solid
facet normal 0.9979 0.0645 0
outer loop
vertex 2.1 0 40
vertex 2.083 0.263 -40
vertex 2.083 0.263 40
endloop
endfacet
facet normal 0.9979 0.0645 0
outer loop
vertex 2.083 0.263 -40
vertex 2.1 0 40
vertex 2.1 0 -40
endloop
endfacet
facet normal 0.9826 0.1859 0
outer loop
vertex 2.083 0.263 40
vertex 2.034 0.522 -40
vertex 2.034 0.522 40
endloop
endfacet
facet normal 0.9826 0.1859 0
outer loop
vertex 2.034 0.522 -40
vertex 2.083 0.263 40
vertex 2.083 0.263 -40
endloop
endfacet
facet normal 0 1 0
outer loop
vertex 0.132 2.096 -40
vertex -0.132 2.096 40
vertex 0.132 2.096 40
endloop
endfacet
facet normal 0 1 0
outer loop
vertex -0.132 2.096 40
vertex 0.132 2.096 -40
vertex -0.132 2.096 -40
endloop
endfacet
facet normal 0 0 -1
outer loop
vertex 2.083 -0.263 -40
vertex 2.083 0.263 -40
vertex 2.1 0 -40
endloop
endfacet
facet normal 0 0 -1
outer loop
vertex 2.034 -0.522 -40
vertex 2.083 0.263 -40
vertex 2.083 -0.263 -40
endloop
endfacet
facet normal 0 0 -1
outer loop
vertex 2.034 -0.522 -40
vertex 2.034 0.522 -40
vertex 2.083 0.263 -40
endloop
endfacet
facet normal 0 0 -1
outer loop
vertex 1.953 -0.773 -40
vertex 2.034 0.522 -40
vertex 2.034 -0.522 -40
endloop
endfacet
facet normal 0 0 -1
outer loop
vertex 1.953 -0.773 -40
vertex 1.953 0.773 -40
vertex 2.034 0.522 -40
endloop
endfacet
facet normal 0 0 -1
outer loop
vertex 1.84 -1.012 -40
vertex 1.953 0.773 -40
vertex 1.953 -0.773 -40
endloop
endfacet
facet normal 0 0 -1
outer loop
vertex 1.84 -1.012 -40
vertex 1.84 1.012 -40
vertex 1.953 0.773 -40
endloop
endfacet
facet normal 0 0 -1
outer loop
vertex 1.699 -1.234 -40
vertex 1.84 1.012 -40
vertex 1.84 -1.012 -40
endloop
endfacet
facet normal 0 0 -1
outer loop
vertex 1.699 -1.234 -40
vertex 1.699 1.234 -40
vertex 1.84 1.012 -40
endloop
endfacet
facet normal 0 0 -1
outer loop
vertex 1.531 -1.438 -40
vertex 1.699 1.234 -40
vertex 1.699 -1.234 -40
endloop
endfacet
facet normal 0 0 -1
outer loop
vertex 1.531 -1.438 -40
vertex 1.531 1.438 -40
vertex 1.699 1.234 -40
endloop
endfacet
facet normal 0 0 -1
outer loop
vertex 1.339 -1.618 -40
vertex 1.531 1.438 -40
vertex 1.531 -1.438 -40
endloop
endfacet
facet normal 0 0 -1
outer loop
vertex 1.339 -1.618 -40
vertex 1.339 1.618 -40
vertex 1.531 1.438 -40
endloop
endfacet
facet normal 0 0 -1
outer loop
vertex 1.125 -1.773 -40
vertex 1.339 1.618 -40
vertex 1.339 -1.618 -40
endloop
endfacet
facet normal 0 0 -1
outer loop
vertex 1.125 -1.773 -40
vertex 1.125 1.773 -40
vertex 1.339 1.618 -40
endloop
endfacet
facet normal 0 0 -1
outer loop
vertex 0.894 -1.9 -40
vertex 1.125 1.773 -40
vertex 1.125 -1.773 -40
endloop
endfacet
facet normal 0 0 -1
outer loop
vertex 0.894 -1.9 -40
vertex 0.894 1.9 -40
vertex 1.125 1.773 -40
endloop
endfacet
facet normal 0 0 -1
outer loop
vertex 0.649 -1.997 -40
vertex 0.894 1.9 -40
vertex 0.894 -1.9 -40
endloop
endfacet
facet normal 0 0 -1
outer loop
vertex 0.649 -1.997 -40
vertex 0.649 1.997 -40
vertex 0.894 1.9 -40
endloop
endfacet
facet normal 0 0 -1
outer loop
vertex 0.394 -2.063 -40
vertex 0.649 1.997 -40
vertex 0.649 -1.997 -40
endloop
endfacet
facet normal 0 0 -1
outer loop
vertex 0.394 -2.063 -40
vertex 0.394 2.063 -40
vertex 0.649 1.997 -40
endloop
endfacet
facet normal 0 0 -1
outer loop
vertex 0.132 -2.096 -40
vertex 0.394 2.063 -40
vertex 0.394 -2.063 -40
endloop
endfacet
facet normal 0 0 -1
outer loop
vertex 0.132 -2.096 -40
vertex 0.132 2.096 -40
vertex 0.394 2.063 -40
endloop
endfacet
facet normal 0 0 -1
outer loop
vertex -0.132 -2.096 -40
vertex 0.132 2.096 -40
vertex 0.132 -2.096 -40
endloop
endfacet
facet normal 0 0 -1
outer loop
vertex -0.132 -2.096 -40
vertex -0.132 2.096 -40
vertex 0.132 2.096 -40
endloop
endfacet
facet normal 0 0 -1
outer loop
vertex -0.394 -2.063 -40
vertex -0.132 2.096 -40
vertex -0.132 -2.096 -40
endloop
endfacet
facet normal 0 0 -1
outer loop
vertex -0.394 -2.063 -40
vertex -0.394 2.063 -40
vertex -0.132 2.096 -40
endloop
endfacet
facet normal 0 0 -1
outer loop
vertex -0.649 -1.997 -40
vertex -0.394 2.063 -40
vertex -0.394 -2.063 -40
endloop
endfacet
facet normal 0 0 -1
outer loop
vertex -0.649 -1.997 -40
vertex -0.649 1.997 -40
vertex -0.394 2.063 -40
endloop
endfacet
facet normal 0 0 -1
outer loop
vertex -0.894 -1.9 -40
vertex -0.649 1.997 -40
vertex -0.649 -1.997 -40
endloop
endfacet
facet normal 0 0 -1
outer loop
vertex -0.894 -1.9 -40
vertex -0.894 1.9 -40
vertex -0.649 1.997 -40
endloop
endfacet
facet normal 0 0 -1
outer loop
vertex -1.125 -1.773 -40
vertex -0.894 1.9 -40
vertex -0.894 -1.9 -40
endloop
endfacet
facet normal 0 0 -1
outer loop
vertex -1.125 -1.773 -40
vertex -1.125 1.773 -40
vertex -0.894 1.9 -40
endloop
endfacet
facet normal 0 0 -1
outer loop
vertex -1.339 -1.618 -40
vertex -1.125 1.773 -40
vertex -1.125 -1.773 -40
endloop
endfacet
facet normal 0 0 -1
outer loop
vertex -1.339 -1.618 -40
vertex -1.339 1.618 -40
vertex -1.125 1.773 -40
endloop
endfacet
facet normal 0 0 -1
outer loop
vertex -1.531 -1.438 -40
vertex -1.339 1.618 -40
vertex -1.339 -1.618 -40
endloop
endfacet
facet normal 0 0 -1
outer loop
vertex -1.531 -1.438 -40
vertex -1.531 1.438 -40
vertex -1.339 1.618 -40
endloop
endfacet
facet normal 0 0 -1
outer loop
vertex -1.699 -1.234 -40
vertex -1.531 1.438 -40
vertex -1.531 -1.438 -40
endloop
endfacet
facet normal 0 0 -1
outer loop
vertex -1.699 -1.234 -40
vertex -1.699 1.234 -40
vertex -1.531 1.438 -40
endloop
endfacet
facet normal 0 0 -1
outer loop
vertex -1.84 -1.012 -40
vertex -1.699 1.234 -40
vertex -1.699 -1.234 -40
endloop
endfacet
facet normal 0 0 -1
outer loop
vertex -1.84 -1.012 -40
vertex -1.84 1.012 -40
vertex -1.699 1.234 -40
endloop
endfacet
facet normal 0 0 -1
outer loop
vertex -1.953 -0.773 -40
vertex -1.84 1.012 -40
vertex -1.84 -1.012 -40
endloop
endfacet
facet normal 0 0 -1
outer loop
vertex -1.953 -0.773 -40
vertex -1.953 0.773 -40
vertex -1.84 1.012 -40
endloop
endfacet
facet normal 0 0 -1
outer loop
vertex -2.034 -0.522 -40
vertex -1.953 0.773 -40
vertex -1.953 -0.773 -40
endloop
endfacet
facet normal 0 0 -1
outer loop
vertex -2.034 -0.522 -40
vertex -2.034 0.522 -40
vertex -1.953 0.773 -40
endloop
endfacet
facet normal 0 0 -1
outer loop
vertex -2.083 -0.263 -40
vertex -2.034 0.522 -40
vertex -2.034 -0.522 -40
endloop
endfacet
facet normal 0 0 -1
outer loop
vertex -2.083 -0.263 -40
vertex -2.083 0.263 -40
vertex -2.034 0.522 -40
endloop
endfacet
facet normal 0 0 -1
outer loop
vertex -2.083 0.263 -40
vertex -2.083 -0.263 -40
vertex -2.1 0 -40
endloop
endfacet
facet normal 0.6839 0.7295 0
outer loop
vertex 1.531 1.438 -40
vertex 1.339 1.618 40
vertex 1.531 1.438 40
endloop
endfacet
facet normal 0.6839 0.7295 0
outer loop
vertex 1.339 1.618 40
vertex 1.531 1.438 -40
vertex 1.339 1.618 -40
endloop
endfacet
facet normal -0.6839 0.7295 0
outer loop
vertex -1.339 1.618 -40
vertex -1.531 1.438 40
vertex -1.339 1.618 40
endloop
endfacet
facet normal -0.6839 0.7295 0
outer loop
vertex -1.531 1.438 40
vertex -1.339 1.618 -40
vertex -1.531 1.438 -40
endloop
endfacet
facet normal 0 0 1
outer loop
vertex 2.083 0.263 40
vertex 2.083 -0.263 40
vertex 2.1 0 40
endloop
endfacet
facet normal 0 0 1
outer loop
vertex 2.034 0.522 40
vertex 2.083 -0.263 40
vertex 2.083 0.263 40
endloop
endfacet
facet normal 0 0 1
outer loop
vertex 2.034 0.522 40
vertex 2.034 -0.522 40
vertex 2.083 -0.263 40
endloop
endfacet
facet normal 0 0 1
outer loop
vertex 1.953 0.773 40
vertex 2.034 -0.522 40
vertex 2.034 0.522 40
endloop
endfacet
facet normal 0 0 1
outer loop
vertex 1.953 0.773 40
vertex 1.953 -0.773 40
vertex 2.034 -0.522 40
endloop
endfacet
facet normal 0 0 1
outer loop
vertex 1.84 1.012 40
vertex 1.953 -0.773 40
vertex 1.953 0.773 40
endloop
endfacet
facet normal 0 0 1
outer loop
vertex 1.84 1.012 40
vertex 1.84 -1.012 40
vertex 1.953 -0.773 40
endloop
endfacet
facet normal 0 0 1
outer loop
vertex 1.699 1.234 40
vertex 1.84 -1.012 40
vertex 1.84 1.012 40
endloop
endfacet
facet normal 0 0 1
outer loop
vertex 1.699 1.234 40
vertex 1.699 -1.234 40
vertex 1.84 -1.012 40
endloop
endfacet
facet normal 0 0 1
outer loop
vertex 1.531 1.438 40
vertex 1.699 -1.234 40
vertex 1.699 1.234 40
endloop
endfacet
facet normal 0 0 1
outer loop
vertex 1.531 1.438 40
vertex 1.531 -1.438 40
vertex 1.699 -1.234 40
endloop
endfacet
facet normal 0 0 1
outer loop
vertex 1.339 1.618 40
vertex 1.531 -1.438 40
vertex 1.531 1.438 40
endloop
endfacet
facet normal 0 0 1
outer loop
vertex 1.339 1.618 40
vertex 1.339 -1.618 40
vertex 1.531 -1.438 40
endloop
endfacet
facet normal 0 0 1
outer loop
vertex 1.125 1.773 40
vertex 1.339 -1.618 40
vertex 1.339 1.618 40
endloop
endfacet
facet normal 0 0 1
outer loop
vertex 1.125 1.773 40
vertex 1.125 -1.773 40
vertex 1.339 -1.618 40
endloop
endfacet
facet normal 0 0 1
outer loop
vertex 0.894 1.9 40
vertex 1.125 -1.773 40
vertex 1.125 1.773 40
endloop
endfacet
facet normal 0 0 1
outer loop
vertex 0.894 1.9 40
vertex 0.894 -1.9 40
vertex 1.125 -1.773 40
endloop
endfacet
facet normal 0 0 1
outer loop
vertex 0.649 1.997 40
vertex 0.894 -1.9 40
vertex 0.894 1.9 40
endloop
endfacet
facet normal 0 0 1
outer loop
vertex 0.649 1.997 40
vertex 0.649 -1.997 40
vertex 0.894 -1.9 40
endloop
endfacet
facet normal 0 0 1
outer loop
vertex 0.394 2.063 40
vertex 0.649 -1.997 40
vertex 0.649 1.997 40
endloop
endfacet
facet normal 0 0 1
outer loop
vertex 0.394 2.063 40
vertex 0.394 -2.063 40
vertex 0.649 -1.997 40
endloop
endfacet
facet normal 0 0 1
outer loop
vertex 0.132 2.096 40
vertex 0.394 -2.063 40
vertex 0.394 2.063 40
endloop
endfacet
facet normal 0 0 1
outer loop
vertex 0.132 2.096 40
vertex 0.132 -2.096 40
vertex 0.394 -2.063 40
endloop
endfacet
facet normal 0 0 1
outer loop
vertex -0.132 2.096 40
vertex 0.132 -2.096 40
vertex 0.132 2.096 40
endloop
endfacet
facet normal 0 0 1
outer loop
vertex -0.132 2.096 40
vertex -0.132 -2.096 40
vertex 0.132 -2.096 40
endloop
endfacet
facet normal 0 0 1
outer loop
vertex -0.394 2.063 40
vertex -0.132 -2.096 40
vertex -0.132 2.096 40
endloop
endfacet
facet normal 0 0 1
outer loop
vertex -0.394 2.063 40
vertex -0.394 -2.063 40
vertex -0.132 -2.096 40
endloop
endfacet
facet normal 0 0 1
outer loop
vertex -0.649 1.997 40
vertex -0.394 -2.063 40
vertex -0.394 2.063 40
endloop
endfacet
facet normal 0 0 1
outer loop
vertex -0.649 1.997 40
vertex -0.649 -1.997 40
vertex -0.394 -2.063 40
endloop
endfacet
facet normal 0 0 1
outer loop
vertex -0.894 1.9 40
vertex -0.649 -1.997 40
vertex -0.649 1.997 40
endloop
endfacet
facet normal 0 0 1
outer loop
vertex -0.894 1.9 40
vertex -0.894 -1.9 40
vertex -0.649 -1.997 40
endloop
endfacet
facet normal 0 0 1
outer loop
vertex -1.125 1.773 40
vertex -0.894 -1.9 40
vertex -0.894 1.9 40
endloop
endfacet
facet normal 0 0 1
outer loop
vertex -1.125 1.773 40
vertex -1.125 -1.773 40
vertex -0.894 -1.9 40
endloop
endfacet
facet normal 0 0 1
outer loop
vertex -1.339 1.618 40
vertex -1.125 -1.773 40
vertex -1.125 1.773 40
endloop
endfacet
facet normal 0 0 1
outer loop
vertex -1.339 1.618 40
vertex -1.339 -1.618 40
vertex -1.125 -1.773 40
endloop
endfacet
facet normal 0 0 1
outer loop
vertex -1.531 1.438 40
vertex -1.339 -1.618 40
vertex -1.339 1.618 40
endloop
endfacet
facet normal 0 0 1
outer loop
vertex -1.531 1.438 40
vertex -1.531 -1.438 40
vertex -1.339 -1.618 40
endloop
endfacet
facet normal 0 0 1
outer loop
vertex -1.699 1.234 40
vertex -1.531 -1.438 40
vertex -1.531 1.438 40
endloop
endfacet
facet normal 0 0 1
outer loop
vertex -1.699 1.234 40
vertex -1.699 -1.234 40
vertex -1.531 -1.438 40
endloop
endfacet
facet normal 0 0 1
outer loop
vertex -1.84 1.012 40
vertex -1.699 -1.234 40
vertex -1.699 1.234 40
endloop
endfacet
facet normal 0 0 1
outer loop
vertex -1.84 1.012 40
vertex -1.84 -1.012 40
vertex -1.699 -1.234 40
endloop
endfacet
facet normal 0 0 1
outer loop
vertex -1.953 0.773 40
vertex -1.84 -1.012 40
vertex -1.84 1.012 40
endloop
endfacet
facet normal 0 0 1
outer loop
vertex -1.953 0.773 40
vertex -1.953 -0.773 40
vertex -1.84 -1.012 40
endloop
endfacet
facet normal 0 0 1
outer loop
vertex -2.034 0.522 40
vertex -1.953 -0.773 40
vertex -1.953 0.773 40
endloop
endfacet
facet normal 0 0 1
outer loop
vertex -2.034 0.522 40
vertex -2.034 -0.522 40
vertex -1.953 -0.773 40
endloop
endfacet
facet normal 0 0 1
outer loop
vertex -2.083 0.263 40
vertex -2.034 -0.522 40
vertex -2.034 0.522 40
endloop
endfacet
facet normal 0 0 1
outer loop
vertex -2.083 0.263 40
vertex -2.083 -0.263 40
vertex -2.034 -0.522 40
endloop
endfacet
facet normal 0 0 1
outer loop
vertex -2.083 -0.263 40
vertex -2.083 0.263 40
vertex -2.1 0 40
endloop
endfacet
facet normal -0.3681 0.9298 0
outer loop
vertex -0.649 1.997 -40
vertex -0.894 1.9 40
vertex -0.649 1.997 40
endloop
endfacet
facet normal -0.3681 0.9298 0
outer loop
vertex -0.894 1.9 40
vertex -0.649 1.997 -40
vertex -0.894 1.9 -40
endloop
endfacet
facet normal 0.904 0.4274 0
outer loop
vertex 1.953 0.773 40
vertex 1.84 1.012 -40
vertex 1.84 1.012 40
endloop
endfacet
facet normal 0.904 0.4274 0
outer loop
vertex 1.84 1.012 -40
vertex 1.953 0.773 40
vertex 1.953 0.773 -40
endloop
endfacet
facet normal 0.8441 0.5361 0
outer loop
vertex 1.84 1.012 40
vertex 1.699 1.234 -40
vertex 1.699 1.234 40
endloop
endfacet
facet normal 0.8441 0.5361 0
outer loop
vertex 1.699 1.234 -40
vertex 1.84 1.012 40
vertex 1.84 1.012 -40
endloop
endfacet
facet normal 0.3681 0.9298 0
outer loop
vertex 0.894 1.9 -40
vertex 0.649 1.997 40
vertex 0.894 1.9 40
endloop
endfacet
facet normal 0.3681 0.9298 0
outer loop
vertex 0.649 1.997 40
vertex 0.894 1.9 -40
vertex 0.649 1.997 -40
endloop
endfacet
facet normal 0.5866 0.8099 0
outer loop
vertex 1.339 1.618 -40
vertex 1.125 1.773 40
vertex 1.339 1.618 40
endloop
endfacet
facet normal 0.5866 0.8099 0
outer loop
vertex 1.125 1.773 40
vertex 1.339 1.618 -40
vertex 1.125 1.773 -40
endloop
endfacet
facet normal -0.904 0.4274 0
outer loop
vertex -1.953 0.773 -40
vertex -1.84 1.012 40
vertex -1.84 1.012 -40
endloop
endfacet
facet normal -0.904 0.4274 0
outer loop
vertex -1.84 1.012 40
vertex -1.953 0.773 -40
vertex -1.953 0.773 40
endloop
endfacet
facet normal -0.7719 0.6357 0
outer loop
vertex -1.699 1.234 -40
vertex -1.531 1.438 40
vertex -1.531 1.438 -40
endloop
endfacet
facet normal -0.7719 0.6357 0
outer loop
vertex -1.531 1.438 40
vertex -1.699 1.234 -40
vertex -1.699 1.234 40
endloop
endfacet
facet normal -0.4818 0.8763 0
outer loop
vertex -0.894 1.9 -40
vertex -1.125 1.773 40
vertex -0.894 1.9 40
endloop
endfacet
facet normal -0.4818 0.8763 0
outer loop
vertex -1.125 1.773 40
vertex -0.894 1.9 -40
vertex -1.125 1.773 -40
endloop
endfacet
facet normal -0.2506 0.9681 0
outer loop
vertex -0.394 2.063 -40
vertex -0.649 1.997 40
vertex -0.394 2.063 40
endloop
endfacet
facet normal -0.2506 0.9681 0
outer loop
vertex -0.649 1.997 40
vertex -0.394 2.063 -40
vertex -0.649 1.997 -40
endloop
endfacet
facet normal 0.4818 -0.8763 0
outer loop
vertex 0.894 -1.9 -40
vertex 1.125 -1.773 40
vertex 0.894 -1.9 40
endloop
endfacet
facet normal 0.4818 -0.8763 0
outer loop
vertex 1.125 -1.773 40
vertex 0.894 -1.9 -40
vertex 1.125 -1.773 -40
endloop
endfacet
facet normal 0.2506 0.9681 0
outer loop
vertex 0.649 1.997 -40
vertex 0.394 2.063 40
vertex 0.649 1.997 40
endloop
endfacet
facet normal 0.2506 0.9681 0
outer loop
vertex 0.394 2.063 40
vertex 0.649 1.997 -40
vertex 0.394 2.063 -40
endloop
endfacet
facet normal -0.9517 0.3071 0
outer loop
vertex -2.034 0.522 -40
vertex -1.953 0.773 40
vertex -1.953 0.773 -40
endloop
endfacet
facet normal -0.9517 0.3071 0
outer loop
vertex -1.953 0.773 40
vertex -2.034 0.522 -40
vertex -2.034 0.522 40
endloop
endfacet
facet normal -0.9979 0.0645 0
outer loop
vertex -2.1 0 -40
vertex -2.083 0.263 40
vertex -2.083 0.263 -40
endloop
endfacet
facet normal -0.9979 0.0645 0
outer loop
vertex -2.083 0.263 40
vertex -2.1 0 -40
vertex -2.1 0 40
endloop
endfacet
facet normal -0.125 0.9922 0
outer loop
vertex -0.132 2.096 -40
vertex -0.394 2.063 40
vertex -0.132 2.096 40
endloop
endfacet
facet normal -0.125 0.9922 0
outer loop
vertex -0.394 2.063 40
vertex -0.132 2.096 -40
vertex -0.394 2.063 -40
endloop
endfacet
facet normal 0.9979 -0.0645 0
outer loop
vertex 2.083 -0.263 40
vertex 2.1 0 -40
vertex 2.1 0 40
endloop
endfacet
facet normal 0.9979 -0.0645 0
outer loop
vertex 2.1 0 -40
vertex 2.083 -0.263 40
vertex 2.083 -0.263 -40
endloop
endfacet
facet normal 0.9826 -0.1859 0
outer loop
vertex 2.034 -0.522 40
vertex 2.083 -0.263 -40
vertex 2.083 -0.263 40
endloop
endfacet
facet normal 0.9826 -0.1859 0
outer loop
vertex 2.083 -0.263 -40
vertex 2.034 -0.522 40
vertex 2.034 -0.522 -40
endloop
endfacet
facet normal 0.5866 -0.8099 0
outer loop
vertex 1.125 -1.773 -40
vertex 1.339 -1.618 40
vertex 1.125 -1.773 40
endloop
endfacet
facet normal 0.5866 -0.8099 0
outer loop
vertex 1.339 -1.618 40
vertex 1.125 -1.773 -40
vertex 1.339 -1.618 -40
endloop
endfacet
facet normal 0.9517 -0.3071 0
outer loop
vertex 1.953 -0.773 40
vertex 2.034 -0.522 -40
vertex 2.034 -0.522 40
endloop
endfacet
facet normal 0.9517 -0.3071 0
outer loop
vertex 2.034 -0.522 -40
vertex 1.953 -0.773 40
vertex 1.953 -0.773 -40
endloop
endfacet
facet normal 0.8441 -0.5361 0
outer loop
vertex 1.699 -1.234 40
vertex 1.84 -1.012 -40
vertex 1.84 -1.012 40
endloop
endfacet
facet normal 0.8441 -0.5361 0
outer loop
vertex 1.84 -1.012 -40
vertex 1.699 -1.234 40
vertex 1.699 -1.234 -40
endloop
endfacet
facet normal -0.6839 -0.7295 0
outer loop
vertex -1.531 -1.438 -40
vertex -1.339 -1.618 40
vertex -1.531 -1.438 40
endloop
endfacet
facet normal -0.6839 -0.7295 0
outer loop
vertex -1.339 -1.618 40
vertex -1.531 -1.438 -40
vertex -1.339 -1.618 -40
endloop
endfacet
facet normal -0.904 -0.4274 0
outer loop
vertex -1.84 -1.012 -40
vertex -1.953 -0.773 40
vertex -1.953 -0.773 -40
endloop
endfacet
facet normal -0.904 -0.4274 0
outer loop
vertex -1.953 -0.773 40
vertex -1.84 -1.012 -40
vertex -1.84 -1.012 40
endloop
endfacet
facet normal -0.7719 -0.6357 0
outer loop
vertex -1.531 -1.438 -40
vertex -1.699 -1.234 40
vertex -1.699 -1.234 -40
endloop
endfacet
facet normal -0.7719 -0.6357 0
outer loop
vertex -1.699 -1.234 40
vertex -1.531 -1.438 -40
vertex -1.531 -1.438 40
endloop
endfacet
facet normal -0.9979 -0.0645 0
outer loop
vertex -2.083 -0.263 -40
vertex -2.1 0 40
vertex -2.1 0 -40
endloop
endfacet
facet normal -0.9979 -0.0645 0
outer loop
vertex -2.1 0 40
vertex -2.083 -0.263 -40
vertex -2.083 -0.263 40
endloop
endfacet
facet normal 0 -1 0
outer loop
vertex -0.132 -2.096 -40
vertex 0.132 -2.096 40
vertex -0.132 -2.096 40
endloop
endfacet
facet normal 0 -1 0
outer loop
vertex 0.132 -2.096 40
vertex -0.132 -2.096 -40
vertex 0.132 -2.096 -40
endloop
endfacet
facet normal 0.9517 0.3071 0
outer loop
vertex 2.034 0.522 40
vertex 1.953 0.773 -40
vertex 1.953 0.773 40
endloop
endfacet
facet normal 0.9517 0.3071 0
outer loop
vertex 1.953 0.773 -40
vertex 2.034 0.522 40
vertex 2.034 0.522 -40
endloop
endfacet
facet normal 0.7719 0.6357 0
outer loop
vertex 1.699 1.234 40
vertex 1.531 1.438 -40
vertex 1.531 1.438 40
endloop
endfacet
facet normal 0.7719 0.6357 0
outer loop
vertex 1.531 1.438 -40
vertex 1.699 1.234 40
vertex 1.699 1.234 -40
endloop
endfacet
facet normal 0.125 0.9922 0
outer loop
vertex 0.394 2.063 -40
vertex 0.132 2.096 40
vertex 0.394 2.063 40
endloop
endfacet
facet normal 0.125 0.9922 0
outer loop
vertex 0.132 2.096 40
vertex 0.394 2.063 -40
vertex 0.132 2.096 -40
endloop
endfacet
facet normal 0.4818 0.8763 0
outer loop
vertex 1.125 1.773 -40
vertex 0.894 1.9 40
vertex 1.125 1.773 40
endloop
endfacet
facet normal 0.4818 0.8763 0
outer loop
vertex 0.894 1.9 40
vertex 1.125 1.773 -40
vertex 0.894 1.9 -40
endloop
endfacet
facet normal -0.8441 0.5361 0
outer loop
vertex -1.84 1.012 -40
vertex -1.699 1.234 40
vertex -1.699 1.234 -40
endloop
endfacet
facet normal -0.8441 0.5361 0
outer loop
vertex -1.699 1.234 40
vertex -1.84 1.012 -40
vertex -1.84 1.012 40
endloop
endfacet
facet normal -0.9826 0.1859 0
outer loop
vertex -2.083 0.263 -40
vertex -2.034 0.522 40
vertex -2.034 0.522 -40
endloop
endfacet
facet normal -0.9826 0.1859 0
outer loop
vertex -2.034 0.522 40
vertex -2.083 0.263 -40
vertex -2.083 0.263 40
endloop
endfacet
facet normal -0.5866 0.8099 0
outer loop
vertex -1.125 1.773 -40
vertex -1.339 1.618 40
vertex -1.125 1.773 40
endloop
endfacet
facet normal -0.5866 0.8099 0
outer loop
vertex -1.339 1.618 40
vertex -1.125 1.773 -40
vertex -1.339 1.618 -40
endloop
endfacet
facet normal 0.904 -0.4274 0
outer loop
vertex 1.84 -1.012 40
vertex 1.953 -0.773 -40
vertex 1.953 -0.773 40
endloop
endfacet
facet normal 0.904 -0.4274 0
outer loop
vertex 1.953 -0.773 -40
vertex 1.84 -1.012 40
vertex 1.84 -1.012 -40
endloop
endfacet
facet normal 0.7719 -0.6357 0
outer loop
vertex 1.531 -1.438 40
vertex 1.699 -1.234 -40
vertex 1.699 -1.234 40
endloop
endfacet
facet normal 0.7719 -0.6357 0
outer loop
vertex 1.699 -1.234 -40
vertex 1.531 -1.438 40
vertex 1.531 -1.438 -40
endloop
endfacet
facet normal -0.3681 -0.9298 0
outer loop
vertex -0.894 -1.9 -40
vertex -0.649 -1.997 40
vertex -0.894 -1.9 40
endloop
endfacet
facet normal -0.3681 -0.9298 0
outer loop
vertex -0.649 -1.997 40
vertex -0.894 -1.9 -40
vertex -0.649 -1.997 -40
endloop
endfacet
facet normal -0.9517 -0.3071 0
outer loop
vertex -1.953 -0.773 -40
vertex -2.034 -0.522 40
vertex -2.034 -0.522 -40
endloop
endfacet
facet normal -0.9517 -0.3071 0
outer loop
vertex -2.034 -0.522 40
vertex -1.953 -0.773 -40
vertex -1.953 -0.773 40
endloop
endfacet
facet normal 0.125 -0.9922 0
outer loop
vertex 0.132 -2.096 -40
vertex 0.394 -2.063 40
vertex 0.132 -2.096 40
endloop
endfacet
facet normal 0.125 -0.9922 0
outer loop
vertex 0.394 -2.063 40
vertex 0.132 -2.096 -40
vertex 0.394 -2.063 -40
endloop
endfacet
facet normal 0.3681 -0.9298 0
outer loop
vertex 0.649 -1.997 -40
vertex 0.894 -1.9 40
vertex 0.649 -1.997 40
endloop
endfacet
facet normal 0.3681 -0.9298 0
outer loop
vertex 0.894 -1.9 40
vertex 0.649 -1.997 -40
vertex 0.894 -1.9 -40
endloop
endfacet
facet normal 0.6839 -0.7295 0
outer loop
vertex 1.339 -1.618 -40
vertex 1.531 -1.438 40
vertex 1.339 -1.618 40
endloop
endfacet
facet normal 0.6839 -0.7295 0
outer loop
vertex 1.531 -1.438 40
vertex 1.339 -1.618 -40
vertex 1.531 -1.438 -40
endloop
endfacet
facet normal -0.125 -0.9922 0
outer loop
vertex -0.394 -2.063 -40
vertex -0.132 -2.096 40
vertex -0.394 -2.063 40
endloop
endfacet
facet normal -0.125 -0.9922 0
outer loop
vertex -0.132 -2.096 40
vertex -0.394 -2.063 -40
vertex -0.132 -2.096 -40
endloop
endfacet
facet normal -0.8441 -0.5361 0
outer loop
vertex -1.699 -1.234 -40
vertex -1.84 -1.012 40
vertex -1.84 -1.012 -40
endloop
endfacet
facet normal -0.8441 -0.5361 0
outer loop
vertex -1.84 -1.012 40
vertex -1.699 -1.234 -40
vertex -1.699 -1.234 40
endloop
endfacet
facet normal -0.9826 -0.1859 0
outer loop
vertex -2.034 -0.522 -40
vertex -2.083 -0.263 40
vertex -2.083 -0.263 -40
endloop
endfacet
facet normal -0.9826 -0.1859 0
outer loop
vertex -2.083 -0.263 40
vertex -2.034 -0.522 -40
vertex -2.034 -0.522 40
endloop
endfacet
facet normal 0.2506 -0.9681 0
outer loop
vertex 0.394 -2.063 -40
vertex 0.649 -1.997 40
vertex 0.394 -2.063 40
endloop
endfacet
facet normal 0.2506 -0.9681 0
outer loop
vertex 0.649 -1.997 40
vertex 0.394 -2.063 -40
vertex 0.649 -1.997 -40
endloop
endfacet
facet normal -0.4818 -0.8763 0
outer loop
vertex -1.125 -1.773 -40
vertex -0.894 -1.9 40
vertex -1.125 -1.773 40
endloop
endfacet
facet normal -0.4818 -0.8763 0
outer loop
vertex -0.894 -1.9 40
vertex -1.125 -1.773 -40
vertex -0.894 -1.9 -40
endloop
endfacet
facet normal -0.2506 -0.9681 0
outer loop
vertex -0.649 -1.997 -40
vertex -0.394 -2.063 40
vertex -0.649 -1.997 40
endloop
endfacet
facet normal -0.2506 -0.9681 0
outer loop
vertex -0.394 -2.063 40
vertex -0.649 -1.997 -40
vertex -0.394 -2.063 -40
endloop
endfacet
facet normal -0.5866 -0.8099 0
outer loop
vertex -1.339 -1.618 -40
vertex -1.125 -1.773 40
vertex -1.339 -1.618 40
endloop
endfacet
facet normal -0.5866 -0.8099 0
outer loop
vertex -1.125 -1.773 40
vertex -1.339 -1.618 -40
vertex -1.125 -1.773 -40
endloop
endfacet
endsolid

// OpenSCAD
$fn = 50;


difference() {
	union() {
		translate(v = [0, 0, -40.0000000000]) {
			cylinder(h = 80, r = 2.1000000000);
		}
	}
	union() {
		translate(v = [0, 0, -100.0000000000]) {
			cylinder(h = 200, r = 0);
		}
	}
}
